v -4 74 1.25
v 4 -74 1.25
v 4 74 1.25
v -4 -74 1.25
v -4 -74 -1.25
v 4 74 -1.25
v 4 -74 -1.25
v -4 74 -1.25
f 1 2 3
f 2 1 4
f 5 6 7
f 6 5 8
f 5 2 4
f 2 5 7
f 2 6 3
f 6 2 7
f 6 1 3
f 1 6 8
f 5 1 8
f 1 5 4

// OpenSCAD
// file: dimensions.scad
/////////////////////////////////////////////////////////////////////////////////
// File for all dimensions, so they can be changed globally.
//
// Author:              Maximilian Stiefel
// Last modification:   17.06.2017
/////////////////////////////////////////////////////////////////////////////////

// Allowance
allowance05 = 0.5;
allowance1 = 1;
allowance2 = 2;

// Dimesions holder
holder_height = 172;
holder_width = 18;
holder_depth = 8;

// Dimensions notch
notch_height = 161;
// Calculations to construct a triangle which can take a PCB
biggest_pcb = 2;
c = biggest_pcb + allowance05;
x = c;
y = sqrt( pow(x,2) - pow(c/2,2) );

// Dimensions cuvette
glass_thickness = 6;
cuvette_width = 180 + 2*glass_thickness + allowance2;
cuvette_depth = 50 + 2*glass_thickness + allowance2;

// Dimensions lid
lid_thickness = 4;
lid_width = 180 + 2*glass_thickness + 2*lid_thickness + allowance2;
lid_depth = 50 + 2*glass_thickness + 2*lid_thickness + allowance2;
lid_height = 20;

// Dimensions holder heater
heater_diameter = 25 + allowance1; 
heater_offset = 55;
heater_pos = -lid_width/2 + heater_diameter/2 + 2*lid_thickness + 3;

// Dimensions slot for the PCB holder arms
slot_width = lid_width - heater_diameter - 2*lid_thickness - 20;
slot_depth = holder_depth + allowance05;
slot_height = 1.5 * lid_height;
slot_pos = heater_pos + heater_diameter/2 + lid_thickness + 3;  

// Dimensions service holes for temp. sensor and air tube
service_hole_width = 10;
service_hole_depth = 10;
service_hole_height = lid_height;

// Dimensions crossbar
crossbar_height = 2.5 + allowance05;
crossbar_width = 8 + allowance05;
crossbar_depth = slot_width;

// Dimensions lid
lid_thickness = 4;
lid_slot_width = 8;

// Dimensions neck
neck_diameter = holder_depth;
neck_height = lid_thickness + allowance05;

// Dimensions head 
head_width = holder_width;
head_depth = holder_depth;
head_height = 5;

// Suitable for M3 screw thread
hole_diameter = 2.5;

// Air system diameter
air_system = 10;

// Height difference between notch for PCB and the actual holder
height_diff_1 = holder_height - notch_height;

// Width difference between crossbar and holder
width_diff_1 = holder_width - crossbar_width;

// Dimensions bar that PCB does not fall down
bar_width = holder_width/2;
bar_depth = 6;
// The height of this thing should exactely use the space which is available
// between the notch for the PBC and the crossbar slot 
bar_height = height_diff_1/4 - crossbar_height/2;

// My color for everything
myColor = "FireBrick";
// main file
/////////////////////////////////////////////////////////////////////////////////
// Adapter for drilling machine in the embedded lab.
//
// Author:              Maximilian Stiefel
// Last modification:   17.06.2017
/////////////////////////////////////////////////////////////////////////////////

/////////////////////////////////////////////////////////////////////////////////
// Includes
/////////////////////////////////////////////////////////////////////////////////
include <dimensions.scad>
use <dimensions.scad>

/////////////////////////////////////////////////////////////////////////////////
// Action
/////////////////////////////////////////////////////////////////////////////////
cube([crossbar_width - allowance05, crossbar_depth, crossbar_height - allowance05], center = true);
